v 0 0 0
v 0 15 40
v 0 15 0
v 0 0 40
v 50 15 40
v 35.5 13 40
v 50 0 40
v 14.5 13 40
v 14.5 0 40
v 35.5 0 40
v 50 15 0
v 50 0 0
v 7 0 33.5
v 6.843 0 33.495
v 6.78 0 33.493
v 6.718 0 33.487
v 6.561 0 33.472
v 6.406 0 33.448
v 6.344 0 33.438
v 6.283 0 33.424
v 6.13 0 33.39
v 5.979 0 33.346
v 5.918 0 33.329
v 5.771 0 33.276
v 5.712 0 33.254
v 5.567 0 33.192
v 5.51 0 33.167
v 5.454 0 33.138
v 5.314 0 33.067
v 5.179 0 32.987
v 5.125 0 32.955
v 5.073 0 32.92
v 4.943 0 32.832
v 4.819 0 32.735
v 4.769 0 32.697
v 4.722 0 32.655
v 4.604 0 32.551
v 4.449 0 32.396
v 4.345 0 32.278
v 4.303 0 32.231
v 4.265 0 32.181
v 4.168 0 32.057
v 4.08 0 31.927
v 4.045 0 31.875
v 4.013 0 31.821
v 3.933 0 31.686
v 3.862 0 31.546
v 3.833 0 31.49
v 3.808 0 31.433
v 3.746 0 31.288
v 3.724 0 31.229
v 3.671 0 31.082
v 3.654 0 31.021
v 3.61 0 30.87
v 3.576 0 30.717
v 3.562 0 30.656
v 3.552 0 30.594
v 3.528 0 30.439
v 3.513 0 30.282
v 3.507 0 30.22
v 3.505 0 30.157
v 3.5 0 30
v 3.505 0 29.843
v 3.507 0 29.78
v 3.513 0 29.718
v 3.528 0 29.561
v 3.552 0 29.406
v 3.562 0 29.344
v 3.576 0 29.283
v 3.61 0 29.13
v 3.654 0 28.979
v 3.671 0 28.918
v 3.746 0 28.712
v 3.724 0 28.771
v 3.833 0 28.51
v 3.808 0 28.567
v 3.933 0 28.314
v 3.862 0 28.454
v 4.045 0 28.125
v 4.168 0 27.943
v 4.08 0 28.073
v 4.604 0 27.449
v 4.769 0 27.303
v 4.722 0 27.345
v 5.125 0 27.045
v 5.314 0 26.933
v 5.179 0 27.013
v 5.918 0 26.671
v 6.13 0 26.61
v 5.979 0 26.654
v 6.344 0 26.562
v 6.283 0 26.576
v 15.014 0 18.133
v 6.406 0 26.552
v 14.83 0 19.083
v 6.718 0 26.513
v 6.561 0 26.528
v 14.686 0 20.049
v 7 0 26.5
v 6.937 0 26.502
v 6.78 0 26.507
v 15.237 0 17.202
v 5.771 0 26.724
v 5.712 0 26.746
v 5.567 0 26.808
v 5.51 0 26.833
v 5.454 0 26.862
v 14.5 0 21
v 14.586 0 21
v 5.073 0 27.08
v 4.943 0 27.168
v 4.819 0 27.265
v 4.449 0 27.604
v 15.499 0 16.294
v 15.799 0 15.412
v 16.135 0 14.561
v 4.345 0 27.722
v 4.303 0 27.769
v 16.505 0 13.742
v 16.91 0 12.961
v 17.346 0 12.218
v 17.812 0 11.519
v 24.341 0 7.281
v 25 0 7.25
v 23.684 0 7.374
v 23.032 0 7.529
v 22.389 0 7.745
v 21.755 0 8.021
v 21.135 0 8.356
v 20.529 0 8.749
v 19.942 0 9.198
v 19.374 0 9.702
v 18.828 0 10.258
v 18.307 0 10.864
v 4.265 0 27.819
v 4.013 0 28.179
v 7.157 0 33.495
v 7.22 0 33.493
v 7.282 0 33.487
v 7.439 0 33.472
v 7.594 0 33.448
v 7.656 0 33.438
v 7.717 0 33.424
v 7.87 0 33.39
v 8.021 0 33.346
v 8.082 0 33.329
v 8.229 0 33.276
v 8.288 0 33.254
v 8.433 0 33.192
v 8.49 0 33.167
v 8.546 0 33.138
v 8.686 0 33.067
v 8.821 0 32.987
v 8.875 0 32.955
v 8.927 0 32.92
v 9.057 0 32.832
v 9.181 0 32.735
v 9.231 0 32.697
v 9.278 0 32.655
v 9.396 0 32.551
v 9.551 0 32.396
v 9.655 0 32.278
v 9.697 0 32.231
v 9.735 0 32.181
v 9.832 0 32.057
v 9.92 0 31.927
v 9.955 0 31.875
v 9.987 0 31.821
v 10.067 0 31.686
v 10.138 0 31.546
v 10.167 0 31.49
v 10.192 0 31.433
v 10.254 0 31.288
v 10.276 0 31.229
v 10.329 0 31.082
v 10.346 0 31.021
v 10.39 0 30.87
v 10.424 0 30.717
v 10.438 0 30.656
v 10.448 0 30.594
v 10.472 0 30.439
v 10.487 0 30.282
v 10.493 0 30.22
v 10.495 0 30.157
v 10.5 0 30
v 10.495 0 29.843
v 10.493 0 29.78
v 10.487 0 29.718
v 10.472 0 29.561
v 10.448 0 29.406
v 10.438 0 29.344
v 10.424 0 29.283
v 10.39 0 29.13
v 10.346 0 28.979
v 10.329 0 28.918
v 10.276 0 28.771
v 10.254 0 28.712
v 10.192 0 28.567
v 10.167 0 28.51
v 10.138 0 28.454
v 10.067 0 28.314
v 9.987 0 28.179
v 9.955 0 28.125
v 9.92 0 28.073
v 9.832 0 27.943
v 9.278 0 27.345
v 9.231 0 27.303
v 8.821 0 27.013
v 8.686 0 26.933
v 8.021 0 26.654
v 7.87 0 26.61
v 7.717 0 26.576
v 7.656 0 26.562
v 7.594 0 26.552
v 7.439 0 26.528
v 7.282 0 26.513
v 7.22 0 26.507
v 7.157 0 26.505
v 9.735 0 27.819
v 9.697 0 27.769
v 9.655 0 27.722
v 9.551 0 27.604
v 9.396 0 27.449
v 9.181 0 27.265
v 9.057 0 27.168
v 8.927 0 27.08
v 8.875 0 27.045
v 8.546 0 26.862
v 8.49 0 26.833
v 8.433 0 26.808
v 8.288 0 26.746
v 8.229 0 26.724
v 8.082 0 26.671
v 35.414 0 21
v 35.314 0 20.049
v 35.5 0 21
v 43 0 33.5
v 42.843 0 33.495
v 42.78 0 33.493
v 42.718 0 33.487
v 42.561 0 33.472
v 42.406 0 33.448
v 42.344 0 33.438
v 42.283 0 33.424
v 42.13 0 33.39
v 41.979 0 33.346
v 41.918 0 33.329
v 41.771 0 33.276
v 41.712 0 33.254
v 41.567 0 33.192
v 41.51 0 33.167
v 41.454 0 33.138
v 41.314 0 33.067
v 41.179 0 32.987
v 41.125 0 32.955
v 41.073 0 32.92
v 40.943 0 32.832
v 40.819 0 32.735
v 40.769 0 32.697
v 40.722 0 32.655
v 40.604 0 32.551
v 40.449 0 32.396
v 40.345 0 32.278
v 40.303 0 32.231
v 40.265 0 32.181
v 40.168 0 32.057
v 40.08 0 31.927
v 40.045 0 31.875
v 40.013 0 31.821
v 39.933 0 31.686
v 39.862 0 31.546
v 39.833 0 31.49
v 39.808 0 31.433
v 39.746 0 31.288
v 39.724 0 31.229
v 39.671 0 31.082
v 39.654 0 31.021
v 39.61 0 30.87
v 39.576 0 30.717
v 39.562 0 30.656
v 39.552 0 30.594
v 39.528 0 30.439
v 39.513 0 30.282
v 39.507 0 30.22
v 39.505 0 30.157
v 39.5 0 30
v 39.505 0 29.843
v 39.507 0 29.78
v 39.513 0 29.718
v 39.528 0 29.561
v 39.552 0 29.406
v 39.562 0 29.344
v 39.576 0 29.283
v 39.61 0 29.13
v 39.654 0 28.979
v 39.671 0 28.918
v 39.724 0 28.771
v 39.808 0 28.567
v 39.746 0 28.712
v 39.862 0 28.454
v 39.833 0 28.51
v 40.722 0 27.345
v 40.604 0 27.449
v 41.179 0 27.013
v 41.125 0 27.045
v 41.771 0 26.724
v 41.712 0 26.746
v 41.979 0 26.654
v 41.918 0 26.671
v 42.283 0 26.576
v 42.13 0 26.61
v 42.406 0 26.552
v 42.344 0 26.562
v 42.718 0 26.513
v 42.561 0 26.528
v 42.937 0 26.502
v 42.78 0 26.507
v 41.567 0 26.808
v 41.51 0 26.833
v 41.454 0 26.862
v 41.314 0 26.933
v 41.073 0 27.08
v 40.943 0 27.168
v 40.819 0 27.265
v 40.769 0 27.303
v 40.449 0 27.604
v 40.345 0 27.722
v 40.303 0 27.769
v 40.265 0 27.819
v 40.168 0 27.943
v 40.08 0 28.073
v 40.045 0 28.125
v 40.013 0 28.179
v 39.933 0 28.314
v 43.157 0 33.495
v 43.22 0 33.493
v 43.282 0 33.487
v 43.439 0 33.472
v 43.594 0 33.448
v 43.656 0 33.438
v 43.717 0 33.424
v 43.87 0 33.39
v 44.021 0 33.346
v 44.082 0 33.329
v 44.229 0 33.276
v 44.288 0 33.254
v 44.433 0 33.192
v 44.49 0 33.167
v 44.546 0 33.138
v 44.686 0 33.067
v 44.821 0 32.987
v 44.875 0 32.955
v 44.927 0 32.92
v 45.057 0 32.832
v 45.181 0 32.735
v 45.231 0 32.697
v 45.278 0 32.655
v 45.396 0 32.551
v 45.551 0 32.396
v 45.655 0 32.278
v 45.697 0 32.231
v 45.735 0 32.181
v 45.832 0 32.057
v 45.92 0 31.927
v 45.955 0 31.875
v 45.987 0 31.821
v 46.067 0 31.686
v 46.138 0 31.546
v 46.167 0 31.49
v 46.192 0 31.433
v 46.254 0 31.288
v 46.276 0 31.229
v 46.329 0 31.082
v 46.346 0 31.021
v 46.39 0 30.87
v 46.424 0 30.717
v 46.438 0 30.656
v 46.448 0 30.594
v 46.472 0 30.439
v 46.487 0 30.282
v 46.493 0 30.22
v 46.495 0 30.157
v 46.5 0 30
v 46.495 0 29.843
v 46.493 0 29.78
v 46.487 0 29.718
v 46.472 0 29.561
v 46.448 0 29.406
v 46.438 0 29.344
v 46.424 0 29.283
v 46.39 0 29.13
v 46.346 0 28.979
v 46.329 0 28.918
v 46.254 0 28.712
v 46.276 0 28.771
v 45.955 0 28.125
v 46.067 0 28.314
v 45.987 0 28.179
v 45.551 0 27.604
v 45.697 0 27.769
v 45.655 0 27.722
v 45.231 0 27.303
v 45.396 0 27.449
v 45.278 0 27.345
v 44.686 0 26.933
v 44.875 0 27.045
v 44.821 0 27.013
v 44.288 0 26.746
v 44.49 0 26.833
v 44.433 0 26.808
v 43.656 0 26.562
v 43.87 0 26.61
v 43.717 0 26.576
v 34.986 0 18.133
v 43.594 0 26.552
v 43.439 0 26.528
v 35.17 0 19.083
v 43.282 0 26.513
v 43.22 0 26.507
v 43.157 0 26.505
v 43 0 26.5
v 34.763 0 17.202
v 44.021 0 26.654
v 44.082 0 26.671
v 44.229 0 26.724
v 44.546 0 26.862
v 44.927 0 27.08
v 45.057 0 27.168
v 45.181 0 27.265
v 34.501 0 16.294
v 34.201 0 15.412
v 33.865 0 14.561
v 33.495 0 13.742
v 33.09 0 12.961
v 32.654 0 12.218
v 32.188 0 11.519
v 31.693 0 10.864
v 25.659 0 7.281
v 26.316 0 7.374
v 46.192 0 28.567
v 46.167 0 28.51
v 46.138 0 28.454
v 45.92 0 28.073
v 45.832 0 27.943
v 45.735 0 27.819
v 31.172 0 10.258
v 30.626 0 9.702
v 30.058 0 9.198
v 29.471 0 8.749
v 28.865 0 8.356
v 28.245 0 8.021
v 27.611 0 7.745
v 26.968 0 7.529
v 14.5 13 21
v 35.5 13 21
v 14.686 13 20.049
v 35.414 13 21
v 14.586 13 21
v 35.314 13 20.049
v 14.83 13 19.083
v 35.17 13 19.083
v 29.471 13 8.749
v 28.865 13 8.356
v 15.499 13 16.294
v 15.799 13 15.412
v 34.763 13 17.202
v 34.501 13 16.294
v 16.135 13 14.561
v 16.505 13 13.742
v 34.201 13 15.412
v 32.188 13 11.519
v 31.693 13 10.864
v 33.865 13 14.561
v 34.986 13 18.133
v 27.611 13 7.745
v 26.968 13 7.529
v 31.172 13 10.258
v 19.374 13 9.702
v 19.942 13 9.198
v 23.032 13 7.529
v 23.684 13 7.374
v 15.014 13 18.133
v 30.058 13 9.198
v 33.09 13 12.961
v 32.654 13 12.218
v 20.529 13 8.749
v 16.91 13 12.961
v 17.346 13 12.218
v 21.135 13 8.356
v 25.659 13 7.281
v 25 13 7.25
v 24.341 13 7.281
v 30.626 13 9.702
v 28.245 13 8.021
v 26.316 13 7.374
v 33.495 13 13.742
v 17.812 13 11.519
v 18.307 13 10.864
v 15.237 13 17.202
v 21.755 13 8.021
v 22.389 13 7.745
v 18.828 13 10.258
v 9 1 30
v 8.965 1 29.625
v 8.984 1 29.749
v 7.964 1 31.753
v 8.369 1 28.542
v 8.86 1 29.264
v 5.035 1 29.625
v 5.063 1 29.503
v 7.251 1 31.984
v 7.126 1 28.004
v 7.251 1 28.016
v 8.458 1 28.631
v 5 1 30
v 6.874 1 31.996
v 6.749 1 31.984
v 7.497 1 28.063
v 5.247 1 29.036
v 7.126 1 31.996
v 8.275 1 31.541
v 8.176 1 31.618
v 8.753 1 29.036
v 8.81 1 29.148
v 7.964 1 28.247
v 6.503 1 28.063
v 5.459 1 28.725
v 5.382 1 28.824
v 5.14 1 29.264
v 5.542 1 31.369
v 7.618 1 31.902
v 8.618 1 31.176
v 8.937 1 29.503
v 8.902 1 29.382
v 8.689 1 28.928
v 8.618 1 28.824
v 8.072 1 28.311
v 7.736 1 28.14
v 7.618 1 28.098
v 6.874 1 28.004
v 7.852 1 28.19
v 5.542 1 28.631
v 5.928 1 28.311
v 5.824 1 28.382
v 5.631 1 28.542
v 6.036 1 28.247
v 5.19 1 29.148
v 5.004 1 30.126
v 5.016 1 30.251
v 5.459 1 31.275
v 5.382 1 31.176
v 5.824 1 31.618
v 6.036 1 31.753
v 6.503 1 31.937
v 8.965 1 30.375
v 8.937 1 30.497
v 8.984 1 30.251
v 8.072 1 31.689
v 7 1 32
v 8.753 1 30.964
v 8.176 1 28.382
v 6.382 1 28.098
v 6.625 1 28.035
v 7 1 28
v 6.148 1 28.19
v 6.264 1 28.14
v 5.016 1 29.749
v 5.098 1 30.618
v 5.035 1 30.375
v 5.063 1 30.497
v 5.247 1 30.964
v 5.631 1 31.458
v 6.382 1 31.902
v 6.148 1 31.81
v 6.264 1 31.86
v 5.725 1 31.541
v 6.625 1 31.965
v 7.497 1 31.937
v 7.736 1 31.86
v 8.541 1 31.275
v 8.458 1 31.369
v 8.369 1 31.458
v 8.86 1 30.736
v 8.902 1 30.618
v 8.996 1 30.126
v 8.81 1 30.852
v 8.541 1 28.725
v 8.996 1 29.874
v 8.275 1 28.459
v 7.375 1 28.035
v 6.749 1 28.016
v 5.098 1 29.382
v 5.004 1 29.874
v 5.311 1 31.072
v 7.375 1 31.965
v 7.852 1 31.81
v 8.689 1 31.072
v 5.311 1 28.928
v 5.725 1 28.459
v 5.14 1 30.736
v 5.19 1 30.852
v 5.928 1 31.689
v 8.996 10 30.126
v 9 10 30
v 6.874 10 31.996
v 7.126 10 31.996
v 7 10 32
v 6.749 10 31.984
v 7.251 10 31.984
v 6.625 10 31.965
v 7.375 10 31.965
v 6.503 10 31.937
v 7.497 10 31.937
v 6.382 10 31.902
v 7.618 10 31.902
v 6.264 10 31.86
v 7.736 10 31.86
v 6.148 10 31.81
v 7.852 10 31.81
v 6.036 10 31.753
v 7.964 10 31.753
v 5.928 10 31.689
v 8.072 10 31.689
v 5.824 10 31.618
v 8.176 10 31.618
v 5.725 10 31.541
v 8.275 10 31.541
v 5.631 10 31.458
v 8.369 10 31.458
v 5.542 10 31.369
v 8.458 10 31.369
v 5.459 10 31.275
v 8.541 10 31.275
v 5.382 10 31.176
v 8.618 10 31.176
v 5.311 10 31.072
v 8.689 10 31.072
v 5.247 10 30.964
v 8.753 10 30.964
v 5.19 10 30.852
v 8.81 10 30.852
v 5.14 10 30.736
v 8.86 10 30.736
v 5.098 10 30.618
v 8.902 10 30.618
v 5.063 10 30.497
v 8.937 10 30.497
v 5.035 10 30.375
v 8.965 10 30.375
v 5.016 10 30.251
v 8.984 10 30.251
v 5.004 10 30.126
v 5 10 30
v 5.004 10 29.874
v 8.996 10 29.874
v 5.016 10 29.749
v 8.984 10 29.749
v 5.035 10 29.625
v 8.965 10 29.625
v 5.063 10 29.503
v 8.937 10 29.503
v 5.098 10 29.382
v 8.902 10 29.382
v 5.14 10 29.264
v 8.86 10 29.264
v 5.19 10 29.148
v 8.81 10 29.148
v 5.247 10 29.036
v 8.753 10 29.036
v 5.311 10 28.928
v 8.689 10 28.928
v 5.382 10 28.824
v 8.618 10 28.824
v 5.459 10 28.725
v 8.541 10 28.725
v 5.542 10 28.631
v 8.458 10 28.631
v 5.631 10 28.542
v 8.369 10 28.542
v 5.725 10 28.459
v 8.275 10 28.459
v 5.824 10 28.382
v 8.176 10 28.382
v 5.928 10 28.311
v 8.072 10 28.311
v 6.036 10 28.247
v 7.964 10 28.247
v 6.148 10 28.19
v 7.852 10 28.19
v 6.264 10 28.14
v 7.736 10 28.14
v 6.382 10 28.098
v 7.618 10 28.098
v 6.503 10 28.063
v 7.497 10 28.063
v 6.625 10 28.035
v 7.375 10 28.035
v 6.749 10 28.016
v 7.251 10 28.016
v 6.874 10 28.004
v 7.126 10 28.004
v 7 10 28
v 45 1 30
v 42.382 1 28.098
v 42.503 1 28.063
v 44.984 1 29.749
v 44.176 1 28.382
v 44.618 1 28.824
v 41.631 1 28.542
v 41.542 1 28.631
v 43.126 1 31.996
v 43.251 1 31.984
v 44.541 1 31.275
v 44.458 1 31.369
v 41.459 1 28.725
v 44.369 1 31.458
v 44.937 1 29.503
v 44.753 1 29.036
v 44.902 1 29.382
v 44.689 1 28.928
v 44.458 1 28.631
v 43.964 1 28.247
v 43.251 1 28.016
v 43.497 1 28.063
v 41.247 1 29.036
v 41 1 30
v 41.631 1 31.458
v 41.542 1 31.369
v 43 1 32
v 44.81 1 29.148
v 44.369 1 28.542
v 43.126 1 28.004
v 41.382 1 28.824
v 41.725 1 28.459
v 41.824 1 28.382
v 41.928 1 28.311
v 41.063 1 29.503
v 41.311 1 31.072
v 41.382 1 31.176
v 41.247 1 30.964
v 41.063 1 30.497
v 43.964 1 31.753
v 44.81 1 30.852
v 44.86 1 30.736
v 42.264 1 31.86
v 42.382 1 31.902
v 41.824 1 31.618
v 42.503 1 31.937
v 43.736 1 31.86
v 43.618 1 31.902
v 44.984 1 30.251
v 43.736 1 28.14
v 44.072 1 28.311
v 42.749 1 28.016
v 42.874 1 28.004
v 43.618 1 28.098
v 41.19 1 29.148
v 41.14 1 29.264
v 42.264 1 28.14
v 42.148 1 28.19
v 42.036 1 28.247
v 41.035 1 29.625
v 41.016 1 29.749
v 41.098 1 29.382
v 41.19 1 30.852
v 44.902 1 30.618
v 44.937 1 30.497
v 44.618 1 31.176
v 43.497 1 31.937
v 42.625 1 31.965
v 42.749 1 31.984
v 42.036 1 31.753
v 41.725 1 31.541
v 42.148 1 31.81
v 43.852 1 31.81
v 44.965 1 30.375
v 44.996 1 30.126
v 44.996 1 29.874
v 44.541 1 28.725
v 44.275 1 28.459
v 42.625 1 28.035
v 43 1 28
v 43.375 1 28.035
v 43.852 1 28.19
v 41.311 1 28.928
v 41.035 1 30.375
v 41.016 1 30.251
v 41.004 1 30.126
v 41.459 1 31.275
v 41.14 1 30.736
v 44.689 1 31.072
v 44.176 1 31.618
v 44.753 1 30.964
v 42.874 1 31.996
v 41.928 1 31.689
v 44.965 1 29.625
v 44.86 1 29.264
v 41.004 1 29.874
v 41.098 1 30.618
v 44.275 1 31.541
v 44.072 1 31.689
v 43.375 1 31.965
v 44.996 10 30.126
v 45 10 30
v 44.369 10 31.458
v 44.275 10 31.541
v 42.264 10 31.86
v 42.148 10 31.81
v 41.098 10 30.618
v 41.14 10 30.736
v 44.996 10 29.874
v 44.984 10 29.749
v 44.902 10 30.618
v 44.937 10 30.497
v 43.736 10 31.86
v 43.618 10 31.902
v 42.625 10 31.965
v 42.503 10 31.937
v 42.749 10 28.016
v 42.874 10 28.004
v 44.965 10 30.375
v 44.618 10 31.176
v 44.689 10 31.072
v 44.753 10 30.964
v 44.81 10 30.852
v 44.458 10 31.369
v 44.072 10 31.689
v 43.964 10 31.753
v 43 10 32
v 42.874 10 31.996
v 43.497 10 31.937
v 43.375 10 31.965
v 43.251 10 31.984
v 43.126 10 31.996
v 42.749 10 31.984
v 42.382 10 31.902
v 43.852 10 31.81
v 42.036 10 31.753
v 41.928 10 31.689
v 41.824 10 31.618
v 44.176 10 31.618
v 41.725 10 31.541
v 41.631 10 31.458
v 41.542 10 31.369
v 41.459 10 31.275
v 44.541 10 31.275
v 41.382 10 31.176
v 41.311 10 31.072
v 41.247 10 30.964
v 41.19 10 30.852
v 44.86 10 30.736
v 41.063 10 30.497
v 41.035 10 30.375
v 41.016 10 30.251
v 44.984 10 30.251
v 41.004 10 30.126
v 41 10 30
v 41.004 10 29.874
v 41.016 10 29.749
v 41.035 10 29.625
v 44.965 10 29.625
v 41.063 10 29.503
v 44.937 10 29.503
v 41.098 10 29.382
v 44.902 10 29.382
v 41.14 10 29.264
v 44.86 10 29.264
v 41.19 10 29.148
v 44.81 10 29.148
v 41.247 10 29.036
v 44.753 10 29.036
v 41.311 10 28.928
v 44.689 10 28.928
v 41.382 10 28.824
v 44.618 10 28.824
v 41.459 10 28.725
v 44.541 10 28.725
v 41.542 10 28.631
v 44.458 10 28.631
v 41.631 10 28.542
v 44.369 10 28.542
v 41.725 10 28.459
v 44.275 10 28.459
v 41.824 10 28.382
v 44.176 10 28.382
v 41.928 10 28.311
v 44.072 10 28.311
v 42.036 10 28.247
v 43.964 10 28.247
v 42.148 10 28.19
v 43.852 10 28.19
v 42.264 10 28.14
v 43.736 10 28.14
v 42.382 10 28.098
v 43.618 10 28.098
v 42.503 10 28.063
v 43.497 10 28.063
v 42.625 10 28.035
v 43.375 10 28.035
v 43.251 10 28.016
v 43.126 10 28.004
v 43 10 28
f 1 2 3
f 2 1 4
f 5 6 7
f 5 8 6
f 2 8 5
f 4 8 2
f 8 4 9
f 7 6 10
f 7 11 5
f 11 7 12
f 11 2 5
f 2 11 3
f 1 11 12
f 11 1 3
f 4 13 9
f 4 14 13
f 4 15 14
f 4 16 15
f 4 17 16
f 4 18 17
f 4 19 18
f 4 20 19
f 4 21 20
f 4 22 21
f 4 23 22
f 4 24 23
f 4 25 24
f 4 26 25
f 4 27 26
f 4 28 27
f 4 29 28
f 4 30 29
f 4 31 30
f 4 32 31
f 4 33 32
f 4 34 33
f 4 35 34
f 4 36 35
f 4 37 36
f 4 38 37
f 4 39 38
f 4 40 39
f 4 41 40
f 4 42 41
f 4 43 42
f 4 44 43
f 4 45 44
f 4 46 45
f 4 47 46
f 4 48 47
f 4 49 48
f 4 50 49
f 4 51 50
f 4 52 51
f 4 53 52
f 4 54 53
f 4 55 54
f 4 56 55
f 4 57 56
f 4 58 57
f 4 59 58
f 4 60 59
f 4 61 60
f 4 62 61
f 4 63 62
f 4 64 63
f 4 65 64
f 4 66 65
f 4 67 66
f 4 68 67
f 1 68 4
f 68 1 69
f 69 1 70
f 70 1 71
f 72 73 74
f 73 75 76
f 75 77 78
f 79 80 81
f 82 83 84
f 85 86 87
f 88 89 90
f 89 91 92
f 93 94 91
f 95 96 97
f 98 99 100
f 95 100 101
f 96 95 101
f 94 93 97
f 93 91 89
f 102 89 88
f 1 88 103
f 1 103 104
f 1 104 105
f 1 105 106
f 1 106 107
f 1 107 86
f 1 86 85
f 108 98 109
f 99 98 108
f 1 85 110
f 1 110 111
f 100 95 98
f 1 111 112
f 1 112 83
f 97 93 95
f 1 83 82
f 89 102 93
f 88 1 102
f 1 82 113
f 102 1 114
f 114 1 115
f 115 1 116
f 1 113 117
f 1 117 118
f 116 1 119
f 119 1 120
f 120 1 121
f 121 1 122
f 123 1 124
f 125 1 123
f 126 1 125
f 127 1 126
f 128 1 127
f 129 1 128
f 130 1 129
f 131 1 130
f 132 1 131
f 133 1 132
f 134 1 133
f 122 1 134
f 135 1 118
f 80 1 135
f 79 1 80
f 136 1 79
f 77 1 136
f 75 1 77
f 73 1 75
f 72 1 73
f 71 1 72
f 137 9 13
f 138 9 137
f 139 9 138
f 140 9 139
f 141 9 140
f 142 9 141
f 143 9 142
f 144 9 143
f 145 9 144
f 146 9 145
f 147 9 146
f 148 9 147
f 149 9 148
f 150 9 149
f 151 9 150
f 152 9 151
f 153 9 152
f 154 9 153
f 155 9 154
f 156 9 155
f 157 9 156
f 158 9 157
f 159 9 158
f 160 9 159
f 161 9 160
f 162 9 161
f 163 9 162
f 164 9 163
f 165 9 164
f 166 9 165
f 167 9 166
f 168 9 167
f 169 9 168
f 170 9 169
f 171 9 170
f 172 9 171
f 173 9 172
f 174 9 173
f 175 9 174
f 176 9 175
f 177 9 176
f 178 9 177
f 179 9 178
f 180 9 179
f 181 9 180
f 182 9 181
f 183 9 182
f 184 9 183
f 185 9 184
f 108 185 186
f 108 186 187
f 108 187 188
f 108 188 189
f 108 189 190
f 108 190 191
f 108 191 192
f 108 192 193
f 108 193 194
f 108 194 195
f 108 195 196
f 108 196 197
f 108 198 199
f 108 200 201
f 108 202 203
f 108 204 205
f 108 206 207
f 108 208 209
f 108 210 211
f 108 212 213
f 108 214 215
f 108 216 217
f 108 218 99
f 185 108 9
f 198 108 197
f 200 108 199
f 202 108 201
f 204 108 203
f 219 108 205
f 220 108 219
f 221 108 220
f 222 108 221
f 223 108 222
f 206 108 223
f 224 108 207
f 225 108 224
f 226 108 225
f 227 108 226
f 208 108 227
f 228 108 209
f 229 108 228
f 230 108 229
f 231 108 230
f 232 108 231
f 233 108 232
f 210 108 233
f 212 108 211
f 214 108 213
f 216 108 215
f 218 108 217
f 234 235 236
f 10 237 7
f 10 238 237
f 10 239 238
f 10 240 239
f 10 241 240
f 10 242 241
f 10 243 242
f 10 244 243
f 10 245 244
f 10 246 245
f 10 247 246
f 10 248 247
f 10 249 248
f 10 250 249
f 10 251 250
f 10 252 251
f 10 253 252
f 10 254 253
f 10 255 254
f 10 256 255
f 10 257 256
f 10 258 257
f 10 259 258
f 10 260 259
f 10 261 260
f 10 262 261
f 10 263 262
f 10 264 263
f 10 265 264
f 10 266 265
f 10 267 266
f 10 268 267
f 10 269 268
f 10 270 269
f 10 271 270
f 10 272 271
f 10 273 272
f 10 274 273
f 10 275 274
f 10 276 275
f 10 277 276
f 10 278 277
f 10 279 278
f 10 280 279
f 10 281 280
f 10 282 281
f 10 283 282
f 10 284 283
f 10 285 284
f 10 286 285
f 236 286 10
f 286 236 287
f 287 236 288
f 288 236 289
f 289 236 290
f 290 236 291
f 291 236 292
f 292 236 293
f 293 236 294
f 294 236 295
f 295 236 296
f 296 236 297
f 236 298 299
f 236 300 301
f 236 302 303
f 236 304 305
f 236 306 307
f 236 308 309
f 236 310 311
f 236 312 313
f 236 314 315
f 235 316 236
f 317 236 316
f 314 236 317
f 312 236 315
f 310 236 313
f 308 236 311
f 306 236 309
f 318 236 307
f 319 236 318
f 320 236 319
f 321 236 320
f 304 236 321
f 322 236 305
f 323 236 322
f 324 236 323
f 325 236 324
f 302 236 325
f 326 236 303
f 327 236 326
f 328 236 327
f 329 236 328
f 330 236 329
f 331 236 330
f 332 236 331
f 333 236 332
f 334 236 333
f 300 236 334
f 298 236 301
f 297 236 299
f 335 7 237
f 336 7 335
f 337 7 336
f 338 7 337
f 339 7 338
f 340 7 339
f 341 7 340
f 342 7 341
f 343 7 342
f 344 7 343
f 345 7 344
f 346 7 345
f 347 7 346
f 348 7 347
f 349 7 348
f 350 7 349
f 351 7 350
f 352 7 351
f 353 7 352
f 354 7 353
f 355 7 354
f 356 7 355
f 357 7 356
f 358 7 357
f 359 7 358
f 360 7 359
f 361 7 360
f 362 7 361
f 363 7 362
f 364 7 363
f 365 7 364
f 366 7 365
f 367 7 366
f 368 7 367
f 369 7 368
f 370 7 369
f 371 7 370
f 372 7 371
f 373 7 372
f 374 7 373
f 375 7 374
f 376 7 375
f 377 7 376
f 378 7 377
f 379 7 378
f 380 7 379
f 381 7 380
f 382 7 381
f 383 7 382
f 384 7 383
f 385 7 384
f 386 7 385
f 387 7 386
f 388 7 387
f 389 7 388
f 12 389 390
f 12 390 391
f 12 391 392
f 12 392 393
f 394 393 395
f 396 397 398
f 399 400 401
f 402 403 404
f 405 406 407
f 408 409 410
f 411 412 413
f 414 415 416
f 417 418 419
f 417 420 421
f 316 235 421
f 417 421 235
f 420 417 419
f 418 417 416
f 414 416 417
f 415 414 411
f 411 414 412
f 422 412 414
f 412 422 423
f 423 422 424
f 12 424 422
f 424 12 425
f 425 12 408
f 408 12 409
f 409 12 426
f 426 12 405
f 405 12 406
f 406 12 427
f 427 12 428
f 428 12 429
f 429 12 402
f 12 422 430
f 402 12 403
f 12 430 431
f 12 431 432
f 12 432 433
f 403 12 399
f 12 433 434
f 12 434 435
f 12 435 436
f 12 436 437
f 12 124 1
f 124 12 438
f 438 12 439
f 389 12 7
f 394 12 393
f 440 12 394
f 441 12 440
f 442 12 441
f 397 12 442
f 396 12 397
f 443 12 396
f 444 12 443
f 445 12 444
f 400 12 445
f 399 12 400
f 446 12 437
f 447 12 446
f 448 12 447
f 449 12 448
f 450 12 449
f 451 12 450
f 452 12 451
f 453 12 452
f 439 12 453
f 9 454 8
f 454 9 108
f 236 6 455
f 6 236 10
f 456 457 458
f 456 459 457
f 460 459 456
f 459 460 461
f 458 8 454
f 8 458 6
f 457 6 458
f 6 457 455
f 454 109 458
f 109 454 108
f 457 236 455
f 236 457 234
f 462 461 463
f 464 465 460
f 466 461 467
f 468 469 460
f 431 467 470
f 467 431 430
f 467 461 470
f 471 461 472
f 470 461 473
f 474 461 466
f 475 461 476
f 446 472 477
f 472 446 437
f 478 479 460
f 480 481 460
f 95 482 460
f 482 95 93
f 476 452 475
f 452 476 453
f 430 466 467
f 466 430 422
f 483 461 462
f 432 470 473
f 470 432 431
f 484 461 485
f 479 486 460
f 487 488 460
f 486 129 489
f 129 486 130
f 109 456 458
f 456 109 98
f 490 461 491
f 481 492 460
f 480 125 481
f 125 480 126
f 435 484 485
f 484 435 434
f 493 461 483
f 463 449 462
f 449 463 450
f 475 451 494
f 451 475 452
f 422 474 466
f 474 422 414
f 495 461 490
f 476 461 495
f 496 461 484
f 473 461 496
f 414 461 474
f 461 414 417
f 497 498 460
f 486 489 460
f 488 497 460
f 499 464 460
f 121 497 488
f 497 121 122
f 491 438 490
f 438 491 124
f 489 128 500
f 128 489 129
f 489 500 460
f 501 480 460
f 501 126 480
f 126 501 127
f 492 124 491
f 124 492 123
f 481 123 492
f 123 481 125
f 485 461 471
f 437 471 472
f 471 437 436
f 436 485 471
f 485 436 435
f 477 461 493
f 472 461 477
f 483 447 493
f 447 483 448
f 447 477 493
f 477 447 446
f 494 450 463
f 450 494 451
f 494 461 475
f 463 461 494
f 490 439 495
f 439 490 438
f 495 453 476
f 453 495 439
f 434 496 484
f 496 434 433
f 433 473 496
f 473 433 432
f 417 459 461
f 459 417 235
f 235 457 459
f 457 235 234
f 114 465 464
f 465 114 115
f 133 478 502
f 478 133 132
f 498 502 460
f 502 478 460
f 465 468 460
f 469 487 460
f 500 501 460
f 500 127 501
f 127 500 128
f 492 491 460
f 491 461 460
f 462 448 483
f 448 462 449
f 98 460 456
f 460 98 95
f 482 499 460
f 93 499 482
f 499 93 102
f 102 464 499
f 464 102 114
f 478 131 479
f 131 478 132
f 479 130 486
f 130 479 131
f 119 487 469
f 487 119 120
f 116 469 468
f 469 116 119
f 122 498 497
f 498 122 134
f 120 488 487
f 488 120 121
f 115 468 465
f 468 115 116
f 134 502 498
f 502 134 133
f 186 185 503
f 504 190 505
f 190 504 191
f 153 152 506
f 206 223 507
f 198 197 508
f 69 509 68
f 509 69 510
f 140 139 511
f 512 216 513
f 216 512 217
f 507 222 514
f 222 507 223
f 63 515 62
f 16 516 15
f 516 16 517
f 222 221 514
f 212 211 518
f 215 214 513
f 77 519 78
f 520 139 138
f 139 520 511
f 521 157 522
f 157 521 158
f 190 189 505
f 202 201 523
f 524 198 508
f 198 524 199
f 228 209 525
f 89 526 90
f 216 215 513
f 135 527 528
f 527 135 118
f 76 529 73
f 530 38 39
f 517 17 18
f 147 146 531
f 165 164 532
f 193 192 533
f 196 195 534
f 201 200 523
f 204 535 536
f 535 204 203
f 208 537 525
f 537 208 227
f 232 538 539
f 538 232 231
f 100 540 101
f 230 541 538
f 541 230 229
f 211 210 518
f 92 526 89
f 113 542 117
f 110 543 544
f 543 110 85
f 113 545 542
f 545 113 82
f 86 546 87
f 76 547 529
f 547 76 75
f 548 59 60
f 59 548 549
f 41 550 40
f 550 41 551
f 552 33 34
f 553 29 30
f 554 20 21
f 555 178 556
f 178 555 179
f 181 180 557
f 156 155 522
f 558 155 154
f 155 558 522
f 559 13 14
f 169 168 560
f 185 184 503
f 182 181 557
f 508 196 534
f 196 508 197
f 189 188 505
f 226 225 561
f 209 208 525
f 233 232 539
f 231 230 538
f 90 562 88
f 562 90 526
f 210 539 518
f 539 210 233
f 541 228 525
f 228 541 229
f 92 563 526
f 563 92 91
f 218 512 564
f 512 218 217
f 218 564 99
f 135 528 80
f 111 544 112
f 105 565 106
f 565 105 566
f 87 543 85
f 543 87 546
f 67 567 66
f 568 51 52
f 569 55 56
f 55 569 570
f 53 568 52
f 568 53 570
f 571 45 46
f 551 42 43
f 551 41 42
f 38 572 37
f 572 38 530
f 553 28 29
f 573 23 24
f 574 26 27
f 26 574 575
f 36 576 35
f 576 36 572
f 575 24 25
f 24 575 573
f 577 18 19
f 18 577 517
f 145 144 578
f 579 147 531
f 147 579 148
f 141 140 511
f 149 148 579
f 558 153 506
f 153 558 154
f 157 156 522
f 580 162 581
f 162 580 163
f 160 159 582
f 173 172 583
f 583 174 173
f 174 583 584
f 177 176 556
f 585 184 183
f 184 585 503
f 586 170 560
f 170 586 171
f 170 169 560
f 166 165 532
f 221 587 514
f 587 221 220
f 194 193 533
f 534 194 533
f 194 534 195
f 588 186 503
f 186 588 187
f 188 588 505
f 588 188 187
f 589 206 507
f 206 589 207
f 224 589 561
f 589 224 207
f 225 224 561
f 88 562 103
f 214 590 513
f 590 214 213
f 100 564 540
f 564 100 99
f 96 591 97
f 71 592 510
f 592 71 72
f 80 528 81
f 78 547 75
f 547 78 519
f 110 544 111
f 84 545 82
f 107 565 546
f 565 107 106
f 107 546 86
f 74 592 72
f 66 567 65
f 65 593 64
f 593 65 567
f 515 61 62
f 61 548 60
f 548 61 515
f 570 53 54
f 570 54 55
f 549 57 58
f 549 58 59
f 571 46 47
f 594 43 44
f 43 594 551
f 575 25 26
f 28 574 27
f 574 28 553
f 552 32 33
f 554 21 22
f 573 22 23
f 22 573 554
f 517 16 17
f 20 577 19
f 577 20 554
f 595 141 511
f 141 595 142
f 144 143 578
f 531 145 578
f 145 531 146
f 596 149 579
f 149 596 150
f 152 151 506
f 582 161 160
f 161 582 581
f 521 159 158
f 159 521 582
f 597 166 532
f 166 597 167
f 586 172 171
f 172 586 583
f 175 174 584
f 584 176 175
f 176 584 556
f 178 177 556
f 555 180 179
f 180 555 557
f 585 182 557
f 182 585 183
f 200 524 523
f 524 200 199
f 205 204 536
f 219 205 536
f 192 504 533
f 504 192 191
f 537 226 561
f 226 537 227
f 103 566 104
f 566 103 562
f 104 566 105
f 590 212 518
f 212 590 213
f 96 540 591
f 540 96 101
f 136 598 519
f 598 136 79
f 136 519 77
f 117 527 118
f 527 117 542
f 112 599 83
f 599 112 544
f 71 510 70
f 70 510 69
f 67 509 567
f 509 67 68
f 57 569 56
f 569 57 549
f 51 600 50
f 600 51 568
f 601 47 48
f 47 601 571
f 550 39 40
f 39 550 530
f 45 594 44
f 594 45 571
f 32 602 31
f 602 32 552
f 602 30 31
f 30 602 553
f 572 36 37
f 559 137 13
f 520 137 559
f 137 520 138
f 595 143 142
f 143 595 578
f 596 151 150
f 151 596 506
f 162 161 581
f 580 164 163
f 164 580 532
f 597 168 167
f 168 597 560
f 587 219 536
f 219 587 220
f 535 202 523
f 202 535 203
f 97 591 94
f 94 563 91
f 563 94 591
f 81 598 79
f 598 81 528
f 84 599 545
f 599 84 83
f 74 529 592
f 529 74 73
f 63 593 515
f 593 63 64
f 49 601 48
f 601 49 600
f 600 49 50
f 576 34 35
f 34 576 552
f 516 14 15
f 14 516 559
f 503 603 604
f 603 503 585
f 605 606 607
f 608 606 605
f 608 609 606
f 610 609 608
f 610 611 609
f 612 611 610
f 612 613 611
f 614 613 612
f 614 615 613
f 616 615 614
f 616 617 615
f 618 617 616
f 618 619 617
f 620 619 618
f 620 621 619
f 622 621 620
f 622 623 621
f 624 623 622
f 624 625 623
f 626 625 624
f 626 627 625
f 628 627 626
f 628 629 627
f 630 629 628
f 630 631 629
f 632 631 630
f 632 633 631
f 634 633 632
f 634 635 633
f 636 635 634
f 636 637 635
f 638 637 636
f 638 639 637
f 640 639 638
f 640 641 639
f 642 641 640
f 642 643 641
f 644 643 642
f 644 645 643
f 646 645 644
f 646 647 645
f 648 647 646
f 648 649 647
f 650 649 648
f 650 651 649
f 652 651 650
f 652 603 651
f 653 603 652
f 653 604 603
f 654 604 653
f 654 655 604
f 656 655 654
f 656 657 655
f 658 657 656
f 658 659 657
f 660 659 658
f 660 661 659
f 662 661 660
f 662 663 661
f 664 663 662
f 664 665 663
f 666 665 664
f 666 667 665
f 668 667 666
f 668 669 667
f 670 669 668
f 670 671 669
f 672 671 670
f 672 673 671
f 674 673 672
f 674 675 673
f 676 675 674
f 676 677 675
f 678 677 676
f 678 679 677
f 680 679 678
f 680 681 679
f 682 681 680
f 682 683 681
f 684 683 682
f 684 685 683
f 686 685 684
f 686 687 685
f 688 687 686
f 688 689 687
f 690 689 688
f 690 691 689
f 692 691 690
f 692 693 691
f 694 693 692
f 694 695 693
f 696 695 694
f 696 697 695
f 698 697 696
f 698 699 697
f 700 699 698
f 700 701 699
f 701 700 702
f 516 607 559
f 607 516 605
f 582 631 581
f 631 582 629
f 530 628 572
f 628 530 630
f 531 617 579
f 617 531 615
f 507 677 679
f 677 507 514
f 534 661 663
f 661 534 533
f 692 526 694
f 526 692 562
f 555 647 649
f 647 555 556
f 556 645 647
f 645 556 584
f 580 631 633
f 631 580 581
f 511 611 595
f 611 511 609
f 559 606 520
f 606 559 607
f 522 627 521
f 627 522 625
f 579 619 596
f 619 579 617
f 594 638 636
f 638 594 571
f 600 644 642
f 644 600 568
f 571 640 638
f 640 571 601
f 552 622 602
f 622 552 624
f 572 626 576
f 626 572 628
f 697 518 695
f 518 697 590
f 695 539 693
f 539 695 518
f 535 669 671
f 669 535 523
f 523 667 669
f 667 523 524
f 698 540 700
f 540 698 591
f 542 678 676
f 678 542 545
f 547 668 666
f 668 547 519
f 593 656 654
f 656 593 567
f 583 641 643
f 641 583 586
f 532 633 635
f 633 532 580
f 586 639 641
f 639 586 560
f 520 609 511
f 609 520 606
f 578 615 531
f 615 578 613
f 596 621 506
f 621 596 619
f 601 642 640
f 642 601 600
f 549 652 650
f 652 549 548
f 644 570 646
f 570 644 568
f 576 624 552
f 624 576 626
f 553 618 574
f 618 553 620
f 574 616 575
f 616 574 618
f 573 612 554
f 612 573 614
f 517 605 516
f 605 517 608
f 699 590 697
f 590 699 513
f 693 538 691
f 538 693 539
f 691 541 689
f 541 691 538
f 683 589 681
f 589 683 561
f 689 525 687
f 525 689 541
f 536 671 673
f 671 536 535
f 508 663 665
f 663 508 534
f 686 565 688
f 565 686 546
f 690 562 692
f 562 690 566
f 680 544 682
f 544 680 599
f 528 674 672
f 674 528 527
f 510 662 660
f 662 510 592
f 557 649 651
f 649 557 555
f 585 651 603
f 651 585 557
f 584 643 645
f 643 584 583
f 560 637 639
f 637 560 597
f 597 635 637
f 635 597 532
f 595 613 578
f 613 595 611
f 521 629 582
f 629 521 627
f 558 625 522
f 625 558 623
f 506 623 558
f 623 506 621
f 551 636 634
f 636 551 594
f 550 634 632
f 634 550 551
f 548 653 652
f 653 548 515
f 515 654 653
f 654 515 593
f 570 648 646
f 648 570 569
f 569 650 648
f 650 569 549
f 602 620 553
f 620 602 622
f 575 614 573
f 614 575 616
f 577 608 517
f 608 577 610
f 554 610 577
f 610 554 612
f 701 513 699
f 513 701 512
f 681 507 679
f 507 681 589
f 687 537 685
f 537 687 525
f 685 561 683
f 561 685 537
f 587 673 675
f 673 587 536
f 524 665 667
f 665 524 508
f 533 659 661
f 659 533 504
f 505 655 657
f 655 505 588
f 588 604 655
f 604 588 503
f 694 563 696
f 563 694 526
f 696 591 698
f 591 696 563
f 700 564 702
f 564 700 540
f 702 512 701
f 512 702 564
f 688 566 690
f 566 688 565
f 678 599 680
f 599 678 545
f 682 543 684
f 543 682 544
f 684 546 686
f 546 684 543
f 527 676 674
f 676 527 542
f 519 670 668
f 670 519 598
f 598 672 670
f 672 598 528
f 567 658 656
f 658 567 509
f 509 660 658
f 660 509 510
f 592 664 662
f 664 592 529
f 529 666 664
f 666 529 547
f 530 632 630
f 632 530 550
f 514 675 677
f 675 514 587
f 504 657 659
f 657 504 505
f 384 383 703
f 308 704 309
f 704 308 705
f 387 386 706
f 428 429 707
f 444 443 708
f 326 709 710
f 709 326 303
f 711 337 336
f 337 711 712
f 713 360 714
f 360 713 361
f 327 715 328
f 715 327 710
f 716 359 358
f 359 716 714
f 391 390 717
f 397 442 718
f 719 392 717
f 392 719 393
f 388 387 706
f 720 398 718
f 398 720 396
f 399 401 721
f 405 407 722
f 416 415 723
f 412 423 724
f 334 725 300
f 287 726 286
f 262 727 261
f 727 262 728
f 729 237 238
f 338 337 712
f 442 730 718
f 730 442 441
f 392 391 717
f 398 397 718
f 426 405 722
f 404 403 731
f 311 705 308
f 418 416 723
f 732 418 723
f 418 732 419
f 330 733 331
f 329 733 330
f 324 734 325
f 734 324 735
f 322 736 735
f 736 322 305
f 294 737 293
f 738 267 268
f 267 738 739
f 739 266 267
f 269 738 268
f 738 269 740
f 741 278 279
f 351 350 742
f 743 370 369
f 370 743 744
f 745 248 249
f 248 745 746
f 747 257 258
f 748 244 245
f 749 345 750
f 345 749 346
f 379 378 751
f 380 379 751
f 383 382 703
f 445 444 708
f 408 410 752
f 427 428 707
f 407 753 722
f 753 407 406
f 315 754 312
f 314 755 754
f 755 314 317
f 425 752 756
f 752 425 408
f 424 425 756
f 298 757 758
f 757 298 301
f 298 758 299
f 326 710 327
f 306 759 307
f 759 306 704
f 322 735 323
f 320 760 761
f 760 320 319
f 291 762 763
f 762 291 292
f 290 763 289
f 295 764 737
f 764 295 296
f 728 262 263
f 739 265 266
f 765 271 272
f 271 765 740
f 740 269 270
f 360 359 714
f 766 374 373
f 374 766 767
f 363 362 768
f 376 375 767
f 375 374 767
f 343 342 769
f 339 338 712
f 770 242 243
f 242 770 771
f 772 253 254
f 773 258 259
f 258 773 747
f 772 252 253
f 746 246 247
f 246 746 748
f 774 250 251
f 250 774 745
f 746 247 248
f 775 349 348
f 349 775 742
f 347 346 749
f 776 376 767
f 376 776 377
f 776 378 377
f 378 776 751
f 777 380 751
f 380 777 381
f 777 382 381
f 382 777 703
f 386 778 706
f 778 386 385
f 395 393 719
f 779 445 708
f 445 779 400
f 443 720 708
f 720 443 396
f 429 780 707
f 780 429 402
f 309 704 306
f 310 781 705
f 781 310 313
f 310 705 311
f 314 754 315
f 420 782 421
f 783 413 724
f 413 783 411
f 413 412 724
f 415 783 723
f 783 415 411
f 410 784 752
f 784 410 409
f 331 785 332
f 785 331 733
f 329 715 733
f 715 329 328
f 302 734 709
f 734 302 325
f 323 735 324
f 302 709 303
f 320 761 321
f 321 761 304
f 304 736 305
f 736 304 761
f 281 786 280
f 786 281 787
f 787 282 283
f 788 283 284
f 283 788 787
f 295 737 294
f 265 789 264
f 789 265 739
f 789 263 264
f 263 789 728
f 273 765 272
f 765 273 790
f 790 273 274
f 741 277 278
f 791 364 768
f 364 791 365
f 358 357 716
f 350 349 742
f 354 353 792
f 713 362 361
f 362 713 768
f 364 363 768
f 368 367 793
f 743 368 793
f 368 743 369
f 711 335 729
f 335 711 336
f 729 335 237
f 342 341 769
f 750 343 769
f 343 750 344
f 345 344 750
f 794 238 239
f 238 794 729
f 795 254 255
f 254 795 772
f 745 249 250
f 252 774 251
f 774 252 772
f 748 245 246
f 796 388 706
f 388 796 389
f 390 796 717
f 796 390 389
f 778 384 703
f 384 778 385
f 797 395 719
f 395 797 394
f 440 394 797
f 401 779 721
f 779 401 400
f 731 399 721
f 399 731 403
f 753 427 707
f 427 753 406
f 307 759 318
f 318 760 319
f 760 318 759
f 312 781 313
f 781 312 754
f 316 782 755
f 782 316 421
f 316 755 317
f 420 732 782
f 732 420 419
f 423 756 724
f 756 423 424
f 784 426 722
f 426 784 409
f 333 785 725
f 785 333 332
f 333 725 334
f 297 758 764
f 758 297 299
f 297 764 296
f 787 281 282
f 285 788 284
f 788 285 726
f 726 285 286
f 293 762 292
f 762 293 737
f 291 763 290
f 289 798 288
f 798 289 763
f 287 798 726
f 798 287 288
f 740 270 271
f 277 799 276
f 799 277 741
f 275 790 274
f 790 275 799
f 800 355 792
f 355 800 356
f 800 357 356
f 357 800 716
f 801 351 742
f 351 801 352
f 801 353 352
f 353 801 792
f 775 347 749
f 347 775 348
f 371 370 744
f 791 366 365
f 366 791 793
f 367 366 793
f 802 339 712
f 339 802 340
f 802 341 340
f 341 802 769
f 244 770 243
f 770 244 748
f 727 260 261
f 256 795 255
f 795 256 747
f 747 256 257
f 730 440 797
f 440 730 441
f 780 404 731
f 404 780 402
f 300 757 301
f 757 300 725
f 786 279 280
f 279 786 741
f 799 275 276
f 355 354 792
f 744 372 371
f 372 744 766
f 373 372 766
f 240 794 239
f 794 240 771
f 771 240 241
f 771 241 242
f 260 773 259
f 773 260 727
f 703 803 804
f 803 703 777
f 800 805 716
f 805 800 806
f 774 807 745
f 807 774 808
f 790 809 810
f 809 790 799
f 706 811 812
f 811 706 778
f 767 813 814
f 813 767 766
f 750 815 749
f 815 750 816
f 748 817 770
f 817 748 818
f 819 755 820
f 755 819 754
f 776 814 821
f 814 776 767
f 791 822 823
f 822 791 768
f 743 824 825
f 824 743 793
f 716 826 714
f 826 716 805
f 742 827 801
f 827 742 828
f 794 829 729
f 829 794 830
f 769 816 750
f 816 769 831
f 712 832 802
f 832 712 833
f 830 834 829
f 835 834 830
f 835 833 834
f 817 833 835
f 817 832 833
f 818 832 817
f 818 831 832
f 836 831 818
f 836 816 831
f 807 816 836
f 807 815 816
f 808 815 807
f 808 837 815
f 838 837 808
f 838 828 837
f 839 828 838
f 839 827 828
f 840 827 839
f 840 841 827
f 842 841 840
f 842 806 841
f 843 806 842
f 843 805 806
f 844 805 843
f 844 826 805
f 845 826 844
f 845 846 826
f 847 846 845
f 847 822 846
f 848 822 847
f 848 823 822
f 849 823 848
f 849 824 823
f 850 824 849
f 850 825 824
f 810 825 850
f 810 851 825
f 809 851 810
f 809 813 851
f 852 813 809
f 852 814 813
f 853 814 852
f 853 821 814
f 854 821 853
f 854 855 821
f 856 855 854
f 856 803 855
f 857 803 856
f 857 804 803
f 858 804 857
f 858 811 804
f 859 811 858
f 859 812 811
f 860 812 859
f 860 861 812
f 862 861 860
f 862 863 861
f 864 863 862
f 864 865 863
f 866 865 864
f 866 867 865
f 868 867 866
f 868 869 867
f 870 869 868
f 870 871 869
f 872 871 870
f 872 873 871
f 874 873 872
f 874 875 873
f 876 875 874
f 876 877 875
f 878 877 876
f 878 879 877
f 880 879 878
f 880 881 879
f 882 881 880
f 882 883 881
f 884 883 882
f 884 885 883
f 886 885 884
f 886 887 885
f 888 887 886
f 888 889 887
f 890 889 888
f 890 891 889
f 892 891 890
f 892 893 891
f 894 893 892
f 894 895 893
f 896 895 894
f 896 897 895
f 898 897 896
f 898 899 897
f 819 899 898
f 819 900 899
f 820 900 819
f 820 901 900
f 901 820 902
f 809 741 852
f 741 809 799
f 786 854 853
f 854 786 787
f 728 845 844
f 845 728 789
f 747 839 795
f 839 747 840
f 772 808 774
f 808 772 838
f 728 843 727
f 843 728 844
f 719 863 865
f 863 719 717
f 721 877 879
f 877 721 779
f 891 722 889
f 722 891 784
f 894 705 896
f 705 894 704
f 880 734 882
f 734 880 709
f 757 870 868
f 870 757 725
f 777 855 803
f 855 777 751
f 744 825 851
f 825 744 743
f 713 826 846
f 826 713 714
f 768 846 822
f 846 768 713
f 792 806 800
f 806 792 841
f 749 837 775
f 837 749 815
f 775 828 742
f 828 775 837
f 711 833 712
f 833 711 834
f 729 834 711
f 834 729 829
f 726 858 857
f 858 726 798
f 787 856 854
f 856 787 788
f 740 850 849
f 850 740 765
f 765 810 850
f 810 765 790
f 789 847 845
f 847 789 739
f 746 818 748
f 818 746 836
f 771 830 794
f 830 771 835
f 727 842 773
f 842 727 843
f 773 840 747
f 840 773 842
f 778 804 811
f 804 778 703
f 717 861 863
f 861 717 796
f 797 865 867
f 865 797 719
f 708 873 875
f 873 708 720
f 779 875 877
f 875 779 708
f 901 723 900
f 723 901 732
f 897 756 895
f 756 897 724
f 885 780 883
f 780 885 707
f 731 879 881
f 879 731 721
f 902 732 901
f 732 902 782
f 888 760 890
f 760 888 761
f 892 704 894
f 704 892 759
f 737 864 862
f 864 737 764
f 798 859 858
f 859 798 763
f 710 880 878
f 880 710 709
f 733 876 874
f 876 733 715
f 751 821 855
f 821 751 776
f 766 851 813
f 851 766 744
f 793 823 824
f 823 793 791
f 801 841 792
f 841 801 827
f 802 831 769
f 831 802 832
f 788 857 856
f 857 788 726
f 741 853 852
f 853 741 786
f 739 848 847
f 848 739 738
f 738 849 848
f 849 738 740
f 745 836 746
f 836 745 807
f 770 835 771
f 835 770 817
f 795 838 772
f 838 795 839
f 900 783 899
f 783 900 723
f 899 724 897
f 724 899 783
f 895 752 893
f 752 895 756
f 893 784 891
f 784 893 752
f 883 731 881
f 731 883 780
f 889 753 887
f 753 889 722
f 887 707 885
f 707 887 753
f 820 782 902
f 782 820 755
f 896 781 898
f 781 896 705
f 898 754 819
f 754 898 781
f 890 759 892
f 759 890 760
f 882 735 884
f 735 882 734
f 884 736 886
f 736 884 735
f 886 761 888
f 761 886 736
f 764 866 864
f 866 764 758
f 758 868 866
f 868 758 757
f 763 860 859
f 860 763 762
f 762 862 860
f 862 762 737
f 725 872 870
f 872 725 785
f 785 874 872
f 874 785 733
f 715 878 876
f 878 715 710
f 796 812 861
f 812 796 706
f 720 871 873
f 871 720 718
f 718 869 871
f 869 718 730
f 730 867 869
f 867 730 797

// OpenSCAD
//--------------------------------------------------------------
// Name: Wardrobe_rod_holder.scad
// Version: 1.0
// Purpose: Wardrobe leg holder
// Author: Evgeny Klepikov
// E-mail: klek07@ya.ru
//
// Created: 28.12.2017
// Updated: 19.03.2018
// Copyright: (c) 2017-2018 WildFox24
// Licence: GPL v3
//--------------------------------------------------------------
//
Ws=15;
Wd=50;
Wd1=21;
Ht=40;
Dc=21;
$fn=100;
module WardrobLegHolder() {
    difference() {
        translate([0,0,0]) cube([Wd,Ws,Ht], false);
        translate([Wd/2-Wd1/2,-2,Wd1]) cube([Wd1,Ws,Ht+1]);
        translate([Wd/2,Ws-2,Wd1+2]) rotate([90,0,0]) scale([1,1.5,1]) cylinder(d=Dc, h=Ws);
    }
}
module ScrewHole(hx,hy,hz) {
  translate([hx,hy-hy-1,hz]) rotate([-90,0,0]) cylinder(d1=10, d2=4, h=2);
  translate([hx,hy,hz]) rotate([90,0,0]) cylinder(d=4, h=Ws+10);
}
difference() {
  WardrobLegHolder();
  ScrewHole(7,10,30);
  ScrewHole(43,10,30);
}
